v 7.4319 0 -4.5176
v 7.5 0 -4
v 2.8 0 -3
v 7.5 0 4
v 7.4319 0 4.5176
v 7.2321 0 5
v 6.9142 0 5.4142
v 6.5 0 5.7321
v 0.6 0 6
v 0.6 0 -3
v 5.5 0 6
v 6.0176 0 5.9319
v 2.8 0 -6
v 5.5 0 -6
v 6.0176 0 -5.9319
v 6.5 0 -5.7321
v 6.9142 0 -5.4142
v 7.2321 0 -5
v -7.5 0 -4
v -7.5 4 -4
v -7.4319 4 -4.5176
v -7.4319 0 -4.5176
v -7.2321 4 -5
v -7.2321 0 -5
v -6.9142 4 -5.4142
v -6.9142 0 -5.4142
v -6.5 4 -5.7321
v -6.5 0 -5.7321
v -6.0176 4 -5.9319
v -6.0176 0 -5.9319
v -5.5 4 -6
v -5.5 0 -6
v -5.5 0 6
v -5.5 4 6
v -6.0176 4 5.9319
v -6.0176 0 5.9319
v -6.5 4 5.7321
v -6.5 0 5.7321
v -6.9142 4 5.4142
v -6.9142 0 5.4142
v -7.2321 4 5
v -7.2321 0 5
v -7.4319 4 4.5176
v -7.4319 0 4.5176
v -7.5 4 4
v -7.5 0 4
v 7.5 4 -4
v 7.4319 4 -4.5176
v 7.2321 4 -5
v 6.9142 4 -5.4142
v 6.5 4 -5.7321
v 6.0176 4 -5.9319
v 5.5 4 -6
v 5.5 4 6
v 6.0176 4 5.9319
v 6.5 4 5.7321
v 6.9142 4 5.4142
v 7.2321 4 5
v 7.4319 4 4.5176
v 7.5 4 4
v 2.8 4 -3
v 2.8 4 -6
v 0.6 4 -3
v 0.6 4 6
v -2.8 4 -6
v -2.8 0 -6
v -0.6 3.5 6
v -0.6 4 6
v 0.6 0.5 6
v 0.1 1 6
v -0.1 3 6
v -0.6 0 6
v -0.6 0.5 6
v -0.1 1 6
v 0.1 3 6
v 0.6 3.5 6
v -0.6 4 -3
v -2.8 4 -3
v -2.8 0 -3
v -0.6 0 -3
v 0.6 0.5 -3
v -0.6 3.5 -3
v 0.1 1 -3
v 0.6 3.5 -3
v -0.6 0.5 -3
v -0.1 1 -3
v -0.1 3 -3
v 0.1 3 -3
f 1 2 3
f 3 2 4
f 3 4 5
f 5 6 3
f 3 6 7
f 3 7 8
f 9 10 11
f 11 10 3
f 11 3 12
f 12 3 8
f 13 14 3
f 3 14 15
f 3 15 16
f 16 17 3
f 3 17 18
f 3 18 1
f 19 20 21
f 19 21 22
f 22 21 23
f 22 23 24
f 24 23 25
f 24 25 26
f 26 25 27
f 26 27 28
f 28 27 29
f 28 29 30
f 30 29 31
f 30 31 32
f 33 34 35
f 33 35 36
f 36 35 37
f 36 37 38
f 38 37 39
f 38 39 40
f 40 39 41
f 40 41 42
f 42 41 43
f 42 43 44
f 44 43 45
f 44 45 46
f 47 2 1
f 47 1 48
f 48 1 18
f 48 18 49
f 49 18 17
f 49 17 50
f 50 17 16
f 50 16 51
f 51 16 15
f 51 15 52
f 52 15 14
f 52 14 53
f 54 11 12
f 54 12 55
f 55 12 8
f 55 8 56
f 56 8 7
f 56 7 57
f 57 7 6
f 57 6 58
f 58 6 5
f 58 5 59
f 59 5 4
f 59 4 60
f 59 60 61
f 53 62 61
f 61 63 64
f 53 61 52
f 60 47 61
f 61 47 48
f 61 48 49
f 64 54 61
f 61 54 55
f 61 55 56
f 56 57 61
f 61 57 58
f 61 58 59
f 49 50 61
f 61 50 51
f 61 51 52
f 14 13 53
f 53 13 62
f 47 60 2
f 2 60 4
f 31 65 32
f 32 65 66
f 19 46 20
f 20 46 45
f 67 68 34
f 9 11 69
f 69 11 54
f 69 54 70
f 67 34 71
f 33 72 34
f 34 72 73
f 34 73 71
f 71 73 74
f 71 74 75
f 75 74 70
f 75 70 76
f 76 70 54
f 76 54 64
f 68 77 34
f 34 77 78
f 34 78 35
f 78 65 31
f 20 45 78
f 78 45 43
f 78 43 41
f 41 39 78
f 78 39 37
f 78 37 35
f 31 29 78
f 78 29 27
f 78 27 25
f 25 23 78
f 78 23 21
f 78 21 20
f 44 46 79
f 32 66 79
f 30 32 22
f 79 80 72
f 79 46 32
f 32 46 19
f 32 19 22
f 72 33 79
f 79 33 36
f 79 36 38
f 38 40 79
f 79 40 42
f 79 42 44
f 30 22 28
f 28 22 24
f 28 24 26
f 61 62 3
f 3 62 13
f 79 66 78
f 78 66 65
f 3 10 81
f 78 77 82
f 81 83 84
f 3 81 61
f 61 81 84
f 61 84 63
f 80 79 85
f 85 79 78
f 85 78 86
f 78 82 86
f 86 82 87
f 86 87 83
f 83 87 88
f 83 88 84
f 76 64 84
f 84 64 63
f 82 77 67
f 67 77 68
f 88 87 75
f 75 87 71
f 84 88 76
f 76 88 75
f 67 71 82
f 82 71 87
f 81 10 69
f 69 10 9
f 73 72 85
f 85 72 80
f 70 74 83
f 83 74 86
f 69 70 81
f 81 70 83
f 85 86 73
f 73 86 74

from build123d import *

# Parameters (mm, degrees)
ESBO_O1_W                = 15
ESBO_O1_H                = 12
RESSALTO_EXTRUS_O1_DEPTH = 4
ESBO_O2_W                = 5.6
ESBO_O2_H                = 6
CORTE_EXTRUS_O1_DEPTH    = 11.404326023
ESBO_O3_W                = 1.2
ESBO_O3_H                = 10
CORTE_EXTRUS_O2_DEPTH    = 1
CHANFRO1_SIZE            = 0.5
FILETE1_R                = 2
FILETE2_R                = 2
FILETE3_R                = 2
FILETE4_R                = 2
ESBO_O4_W                = 1.2
ESBO_O4_H                = 10
CORTE_EXTRUS_O3_DEPTH    = 1
CHANFRO2_SIZE            = 0.5


with BuildPart() as part:
    # Esboço1 → Ressalto-extrusão1 (new body)
    with BuildSketch(Plane(origin=(0, 0, 0), x_dir=(1, 0, 0), z_dir=(0, 1, 0))):
        Rectangle(ESBO_O1_W, ESBO_O1_H)
    extrude(amount=RESSALTO_EXTRUS_O1_DEPTH)

    # Esboço2 → Corte-extrusão1 (cut, through all)
    with BuildSketch(Plane(origin=(0, 4, 0), x_dir=(1, 0, 0), z_dir=(0, 1, 0))):
        with Locations((0, 6)):
            Rectangle(ESBO_O2_W, ESBO_O2_H)
    extrude(amount=-CORTE_EXTRUS_O1_DEPTH, mode=Mode.SUBTRACT)

    # Esboço3 → Corte-extrusão2 (cut)
    with BuildSketch(Plane(origin=(0, 4, 0), x_dir=(1, 0, 0), z_dir=(0, 1, 0))):
        with Locations((0, -2)):
            Rectangle(ESBO_O3_W, ESBO_O3_H)
    extrude(amount=-CORTE_EXTRUS_O2_DEPTH, mode=Mode.SUBTRACT)

    # Chanfro1
    chanfro1_edges = [part.edges().sort_by_distance(p)[0] for p in [
        (0.6, 3, 1.5),
        (-0.6, 3, 1.5),
    ]]
    chamfer(chanfro1_edges, length=CHANFRO1_SIZE)

    # Filete1
    filete1_edges = [part.edges().sort_by_distance(p)[0] for p in [
        (7.5, 2, 6),
    ]]
    fillet(filete1_edges, radius=FILETE1_R)

    # Filete2
    filete2_edges = [part.edges().sort_by_distance(p)[0] for p in [
        (7.5, 2, -6),
    ]]
    fillet(filete2_edges, radius=FILETE2_R)

    # Filete3
    filete3_edges = [part.edges().sort_by_distance(p)[0] for p in [
        (-7.5, 2, 6),
    ]]
    fillet(filete3_edges, radius=FILETE3_R)

    # Filete4
    filete4_edges = [part.edges().sort_by_distance(p)[0] for p in [
        (-7.5, 2, -6),
    ]]
    fillet(filete4_edges, radius=FILETE4_R)

    # Esboço4 → Corte-extrusão3 (cut)
    with BuildSketch(Plane.XZ):
        with Locations((0, 2)):
            Rectangle(ESBO_O4_W, ESBO_O4_H)
    extrude(amount=-CORTE_EXTRUS_O3_DEPTH, mode=Mode.SUBTRACT)

    # Chanfro2
    chanfro2_edges = [part.edges().sort_by_distance(p)[0] for p in [
        (0.6, 1, 1.5),
        (-0.6, 1, 1.5),
    ]]
    chamfer(chanfro2_edges, length=CHANFRO2_SIZE)


solid = part.part
